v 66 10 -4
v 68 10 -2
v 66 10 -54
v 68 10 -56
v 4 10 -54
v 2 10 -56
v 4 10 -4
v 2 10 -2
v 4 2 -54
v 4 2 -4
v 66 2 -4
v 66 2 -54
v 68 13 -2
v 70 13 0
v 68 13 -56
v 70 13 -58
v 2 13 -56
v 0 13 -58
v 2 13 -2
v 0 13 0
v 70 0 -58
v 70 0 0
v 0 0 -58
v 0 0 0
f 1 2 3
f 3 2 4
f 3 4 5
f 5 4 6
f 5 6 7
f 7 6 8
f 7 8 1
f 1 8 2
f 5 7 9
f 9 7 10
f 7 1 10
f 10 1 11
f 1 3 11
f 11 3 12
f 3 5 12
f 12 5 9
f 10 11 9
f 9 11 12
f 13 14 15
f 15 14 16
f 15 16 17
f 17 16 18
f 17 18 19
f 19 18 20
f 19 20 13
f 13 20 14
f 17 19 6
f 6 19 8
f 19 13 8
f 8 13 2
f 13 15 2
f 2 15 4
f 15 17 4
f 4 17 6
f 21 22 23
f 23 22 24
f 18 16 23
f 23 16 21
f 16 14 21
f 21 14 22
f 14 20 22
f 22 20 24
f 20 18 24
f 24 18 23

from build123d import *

# Parameters (mm, degrees)
SZKIC1_W                    = 70
SZKIC1_H                    = 58
DODANIE_WYCI_GNI_CIE1_DEPTH = 2
SZKIC2_W                    = 70
SZKIC2_H                    = 58
SZKIC2_W_2                  = 62
SZKIC2_H_2                  = 50
DODANIE_WYCI_GNI_CIE2_DEPTH = 8
SZKIC3_W                    = 70
SZKIC3_H                    = 58
SZKIC3_W_2                  = 66
SZKIC3_H_2                  = 54
DODANIE_WYCI_GNI_CIE3_DEPTH = 3


with BuildPart() as part:
    # Szkic1 → Dodanie-wyciągnięcie1 (new body)
    with BuildSketch(Plane(origin=(0, 0, 0), x_dir=(1, 0, 0), z_dir=(0, 1, 0))):
        with Locations((35, 29)):
            Rectangle(SZKIC1_W, SZKIC1_H)
    extrude(amount=DODANIE_WYCI_GNI_CIE1_DEPTH)

    # Szkic2 → Dodanie-wyciągnięcie2 (add)
    with BuildSketch(Plane(origin=(0, 2, 0), x_dir=(1, 0, 0), z_dir=(0, 1, 0))):
        with Locations((35, 29)):
            Rectangle(SZKIC2_W, SZKIC2_H)
        with Locations((35, 29)):
            Rectangle(SZKIC2_W_2, SZKIC2_H_2, mode=Mode.SUBTRACT)
    extrude(amount=DODANIE_WYCI_GNI_CIE2_DEPTH)

    # Szkic3 → Dodanie-wyciągnięcie3 (add)
    with BuildSketch(Plane(origin=(0, 10, 0), x_dir=(1, 0, 0), z_dir=(0, 1, 0))):
        with Locations((35, 29)):
            Rectangle(SZKIC3_W, SZKIC3_H)
        with Locations((35, 29)):
            Rectangle(SZKIC3_W_2, SZKIC3_H_2, mode=Mode.SUBTRACT)
    extrude(amount=DODANIE_WYCI_GNI_CIE3_DEPTH)


solid = part.part
